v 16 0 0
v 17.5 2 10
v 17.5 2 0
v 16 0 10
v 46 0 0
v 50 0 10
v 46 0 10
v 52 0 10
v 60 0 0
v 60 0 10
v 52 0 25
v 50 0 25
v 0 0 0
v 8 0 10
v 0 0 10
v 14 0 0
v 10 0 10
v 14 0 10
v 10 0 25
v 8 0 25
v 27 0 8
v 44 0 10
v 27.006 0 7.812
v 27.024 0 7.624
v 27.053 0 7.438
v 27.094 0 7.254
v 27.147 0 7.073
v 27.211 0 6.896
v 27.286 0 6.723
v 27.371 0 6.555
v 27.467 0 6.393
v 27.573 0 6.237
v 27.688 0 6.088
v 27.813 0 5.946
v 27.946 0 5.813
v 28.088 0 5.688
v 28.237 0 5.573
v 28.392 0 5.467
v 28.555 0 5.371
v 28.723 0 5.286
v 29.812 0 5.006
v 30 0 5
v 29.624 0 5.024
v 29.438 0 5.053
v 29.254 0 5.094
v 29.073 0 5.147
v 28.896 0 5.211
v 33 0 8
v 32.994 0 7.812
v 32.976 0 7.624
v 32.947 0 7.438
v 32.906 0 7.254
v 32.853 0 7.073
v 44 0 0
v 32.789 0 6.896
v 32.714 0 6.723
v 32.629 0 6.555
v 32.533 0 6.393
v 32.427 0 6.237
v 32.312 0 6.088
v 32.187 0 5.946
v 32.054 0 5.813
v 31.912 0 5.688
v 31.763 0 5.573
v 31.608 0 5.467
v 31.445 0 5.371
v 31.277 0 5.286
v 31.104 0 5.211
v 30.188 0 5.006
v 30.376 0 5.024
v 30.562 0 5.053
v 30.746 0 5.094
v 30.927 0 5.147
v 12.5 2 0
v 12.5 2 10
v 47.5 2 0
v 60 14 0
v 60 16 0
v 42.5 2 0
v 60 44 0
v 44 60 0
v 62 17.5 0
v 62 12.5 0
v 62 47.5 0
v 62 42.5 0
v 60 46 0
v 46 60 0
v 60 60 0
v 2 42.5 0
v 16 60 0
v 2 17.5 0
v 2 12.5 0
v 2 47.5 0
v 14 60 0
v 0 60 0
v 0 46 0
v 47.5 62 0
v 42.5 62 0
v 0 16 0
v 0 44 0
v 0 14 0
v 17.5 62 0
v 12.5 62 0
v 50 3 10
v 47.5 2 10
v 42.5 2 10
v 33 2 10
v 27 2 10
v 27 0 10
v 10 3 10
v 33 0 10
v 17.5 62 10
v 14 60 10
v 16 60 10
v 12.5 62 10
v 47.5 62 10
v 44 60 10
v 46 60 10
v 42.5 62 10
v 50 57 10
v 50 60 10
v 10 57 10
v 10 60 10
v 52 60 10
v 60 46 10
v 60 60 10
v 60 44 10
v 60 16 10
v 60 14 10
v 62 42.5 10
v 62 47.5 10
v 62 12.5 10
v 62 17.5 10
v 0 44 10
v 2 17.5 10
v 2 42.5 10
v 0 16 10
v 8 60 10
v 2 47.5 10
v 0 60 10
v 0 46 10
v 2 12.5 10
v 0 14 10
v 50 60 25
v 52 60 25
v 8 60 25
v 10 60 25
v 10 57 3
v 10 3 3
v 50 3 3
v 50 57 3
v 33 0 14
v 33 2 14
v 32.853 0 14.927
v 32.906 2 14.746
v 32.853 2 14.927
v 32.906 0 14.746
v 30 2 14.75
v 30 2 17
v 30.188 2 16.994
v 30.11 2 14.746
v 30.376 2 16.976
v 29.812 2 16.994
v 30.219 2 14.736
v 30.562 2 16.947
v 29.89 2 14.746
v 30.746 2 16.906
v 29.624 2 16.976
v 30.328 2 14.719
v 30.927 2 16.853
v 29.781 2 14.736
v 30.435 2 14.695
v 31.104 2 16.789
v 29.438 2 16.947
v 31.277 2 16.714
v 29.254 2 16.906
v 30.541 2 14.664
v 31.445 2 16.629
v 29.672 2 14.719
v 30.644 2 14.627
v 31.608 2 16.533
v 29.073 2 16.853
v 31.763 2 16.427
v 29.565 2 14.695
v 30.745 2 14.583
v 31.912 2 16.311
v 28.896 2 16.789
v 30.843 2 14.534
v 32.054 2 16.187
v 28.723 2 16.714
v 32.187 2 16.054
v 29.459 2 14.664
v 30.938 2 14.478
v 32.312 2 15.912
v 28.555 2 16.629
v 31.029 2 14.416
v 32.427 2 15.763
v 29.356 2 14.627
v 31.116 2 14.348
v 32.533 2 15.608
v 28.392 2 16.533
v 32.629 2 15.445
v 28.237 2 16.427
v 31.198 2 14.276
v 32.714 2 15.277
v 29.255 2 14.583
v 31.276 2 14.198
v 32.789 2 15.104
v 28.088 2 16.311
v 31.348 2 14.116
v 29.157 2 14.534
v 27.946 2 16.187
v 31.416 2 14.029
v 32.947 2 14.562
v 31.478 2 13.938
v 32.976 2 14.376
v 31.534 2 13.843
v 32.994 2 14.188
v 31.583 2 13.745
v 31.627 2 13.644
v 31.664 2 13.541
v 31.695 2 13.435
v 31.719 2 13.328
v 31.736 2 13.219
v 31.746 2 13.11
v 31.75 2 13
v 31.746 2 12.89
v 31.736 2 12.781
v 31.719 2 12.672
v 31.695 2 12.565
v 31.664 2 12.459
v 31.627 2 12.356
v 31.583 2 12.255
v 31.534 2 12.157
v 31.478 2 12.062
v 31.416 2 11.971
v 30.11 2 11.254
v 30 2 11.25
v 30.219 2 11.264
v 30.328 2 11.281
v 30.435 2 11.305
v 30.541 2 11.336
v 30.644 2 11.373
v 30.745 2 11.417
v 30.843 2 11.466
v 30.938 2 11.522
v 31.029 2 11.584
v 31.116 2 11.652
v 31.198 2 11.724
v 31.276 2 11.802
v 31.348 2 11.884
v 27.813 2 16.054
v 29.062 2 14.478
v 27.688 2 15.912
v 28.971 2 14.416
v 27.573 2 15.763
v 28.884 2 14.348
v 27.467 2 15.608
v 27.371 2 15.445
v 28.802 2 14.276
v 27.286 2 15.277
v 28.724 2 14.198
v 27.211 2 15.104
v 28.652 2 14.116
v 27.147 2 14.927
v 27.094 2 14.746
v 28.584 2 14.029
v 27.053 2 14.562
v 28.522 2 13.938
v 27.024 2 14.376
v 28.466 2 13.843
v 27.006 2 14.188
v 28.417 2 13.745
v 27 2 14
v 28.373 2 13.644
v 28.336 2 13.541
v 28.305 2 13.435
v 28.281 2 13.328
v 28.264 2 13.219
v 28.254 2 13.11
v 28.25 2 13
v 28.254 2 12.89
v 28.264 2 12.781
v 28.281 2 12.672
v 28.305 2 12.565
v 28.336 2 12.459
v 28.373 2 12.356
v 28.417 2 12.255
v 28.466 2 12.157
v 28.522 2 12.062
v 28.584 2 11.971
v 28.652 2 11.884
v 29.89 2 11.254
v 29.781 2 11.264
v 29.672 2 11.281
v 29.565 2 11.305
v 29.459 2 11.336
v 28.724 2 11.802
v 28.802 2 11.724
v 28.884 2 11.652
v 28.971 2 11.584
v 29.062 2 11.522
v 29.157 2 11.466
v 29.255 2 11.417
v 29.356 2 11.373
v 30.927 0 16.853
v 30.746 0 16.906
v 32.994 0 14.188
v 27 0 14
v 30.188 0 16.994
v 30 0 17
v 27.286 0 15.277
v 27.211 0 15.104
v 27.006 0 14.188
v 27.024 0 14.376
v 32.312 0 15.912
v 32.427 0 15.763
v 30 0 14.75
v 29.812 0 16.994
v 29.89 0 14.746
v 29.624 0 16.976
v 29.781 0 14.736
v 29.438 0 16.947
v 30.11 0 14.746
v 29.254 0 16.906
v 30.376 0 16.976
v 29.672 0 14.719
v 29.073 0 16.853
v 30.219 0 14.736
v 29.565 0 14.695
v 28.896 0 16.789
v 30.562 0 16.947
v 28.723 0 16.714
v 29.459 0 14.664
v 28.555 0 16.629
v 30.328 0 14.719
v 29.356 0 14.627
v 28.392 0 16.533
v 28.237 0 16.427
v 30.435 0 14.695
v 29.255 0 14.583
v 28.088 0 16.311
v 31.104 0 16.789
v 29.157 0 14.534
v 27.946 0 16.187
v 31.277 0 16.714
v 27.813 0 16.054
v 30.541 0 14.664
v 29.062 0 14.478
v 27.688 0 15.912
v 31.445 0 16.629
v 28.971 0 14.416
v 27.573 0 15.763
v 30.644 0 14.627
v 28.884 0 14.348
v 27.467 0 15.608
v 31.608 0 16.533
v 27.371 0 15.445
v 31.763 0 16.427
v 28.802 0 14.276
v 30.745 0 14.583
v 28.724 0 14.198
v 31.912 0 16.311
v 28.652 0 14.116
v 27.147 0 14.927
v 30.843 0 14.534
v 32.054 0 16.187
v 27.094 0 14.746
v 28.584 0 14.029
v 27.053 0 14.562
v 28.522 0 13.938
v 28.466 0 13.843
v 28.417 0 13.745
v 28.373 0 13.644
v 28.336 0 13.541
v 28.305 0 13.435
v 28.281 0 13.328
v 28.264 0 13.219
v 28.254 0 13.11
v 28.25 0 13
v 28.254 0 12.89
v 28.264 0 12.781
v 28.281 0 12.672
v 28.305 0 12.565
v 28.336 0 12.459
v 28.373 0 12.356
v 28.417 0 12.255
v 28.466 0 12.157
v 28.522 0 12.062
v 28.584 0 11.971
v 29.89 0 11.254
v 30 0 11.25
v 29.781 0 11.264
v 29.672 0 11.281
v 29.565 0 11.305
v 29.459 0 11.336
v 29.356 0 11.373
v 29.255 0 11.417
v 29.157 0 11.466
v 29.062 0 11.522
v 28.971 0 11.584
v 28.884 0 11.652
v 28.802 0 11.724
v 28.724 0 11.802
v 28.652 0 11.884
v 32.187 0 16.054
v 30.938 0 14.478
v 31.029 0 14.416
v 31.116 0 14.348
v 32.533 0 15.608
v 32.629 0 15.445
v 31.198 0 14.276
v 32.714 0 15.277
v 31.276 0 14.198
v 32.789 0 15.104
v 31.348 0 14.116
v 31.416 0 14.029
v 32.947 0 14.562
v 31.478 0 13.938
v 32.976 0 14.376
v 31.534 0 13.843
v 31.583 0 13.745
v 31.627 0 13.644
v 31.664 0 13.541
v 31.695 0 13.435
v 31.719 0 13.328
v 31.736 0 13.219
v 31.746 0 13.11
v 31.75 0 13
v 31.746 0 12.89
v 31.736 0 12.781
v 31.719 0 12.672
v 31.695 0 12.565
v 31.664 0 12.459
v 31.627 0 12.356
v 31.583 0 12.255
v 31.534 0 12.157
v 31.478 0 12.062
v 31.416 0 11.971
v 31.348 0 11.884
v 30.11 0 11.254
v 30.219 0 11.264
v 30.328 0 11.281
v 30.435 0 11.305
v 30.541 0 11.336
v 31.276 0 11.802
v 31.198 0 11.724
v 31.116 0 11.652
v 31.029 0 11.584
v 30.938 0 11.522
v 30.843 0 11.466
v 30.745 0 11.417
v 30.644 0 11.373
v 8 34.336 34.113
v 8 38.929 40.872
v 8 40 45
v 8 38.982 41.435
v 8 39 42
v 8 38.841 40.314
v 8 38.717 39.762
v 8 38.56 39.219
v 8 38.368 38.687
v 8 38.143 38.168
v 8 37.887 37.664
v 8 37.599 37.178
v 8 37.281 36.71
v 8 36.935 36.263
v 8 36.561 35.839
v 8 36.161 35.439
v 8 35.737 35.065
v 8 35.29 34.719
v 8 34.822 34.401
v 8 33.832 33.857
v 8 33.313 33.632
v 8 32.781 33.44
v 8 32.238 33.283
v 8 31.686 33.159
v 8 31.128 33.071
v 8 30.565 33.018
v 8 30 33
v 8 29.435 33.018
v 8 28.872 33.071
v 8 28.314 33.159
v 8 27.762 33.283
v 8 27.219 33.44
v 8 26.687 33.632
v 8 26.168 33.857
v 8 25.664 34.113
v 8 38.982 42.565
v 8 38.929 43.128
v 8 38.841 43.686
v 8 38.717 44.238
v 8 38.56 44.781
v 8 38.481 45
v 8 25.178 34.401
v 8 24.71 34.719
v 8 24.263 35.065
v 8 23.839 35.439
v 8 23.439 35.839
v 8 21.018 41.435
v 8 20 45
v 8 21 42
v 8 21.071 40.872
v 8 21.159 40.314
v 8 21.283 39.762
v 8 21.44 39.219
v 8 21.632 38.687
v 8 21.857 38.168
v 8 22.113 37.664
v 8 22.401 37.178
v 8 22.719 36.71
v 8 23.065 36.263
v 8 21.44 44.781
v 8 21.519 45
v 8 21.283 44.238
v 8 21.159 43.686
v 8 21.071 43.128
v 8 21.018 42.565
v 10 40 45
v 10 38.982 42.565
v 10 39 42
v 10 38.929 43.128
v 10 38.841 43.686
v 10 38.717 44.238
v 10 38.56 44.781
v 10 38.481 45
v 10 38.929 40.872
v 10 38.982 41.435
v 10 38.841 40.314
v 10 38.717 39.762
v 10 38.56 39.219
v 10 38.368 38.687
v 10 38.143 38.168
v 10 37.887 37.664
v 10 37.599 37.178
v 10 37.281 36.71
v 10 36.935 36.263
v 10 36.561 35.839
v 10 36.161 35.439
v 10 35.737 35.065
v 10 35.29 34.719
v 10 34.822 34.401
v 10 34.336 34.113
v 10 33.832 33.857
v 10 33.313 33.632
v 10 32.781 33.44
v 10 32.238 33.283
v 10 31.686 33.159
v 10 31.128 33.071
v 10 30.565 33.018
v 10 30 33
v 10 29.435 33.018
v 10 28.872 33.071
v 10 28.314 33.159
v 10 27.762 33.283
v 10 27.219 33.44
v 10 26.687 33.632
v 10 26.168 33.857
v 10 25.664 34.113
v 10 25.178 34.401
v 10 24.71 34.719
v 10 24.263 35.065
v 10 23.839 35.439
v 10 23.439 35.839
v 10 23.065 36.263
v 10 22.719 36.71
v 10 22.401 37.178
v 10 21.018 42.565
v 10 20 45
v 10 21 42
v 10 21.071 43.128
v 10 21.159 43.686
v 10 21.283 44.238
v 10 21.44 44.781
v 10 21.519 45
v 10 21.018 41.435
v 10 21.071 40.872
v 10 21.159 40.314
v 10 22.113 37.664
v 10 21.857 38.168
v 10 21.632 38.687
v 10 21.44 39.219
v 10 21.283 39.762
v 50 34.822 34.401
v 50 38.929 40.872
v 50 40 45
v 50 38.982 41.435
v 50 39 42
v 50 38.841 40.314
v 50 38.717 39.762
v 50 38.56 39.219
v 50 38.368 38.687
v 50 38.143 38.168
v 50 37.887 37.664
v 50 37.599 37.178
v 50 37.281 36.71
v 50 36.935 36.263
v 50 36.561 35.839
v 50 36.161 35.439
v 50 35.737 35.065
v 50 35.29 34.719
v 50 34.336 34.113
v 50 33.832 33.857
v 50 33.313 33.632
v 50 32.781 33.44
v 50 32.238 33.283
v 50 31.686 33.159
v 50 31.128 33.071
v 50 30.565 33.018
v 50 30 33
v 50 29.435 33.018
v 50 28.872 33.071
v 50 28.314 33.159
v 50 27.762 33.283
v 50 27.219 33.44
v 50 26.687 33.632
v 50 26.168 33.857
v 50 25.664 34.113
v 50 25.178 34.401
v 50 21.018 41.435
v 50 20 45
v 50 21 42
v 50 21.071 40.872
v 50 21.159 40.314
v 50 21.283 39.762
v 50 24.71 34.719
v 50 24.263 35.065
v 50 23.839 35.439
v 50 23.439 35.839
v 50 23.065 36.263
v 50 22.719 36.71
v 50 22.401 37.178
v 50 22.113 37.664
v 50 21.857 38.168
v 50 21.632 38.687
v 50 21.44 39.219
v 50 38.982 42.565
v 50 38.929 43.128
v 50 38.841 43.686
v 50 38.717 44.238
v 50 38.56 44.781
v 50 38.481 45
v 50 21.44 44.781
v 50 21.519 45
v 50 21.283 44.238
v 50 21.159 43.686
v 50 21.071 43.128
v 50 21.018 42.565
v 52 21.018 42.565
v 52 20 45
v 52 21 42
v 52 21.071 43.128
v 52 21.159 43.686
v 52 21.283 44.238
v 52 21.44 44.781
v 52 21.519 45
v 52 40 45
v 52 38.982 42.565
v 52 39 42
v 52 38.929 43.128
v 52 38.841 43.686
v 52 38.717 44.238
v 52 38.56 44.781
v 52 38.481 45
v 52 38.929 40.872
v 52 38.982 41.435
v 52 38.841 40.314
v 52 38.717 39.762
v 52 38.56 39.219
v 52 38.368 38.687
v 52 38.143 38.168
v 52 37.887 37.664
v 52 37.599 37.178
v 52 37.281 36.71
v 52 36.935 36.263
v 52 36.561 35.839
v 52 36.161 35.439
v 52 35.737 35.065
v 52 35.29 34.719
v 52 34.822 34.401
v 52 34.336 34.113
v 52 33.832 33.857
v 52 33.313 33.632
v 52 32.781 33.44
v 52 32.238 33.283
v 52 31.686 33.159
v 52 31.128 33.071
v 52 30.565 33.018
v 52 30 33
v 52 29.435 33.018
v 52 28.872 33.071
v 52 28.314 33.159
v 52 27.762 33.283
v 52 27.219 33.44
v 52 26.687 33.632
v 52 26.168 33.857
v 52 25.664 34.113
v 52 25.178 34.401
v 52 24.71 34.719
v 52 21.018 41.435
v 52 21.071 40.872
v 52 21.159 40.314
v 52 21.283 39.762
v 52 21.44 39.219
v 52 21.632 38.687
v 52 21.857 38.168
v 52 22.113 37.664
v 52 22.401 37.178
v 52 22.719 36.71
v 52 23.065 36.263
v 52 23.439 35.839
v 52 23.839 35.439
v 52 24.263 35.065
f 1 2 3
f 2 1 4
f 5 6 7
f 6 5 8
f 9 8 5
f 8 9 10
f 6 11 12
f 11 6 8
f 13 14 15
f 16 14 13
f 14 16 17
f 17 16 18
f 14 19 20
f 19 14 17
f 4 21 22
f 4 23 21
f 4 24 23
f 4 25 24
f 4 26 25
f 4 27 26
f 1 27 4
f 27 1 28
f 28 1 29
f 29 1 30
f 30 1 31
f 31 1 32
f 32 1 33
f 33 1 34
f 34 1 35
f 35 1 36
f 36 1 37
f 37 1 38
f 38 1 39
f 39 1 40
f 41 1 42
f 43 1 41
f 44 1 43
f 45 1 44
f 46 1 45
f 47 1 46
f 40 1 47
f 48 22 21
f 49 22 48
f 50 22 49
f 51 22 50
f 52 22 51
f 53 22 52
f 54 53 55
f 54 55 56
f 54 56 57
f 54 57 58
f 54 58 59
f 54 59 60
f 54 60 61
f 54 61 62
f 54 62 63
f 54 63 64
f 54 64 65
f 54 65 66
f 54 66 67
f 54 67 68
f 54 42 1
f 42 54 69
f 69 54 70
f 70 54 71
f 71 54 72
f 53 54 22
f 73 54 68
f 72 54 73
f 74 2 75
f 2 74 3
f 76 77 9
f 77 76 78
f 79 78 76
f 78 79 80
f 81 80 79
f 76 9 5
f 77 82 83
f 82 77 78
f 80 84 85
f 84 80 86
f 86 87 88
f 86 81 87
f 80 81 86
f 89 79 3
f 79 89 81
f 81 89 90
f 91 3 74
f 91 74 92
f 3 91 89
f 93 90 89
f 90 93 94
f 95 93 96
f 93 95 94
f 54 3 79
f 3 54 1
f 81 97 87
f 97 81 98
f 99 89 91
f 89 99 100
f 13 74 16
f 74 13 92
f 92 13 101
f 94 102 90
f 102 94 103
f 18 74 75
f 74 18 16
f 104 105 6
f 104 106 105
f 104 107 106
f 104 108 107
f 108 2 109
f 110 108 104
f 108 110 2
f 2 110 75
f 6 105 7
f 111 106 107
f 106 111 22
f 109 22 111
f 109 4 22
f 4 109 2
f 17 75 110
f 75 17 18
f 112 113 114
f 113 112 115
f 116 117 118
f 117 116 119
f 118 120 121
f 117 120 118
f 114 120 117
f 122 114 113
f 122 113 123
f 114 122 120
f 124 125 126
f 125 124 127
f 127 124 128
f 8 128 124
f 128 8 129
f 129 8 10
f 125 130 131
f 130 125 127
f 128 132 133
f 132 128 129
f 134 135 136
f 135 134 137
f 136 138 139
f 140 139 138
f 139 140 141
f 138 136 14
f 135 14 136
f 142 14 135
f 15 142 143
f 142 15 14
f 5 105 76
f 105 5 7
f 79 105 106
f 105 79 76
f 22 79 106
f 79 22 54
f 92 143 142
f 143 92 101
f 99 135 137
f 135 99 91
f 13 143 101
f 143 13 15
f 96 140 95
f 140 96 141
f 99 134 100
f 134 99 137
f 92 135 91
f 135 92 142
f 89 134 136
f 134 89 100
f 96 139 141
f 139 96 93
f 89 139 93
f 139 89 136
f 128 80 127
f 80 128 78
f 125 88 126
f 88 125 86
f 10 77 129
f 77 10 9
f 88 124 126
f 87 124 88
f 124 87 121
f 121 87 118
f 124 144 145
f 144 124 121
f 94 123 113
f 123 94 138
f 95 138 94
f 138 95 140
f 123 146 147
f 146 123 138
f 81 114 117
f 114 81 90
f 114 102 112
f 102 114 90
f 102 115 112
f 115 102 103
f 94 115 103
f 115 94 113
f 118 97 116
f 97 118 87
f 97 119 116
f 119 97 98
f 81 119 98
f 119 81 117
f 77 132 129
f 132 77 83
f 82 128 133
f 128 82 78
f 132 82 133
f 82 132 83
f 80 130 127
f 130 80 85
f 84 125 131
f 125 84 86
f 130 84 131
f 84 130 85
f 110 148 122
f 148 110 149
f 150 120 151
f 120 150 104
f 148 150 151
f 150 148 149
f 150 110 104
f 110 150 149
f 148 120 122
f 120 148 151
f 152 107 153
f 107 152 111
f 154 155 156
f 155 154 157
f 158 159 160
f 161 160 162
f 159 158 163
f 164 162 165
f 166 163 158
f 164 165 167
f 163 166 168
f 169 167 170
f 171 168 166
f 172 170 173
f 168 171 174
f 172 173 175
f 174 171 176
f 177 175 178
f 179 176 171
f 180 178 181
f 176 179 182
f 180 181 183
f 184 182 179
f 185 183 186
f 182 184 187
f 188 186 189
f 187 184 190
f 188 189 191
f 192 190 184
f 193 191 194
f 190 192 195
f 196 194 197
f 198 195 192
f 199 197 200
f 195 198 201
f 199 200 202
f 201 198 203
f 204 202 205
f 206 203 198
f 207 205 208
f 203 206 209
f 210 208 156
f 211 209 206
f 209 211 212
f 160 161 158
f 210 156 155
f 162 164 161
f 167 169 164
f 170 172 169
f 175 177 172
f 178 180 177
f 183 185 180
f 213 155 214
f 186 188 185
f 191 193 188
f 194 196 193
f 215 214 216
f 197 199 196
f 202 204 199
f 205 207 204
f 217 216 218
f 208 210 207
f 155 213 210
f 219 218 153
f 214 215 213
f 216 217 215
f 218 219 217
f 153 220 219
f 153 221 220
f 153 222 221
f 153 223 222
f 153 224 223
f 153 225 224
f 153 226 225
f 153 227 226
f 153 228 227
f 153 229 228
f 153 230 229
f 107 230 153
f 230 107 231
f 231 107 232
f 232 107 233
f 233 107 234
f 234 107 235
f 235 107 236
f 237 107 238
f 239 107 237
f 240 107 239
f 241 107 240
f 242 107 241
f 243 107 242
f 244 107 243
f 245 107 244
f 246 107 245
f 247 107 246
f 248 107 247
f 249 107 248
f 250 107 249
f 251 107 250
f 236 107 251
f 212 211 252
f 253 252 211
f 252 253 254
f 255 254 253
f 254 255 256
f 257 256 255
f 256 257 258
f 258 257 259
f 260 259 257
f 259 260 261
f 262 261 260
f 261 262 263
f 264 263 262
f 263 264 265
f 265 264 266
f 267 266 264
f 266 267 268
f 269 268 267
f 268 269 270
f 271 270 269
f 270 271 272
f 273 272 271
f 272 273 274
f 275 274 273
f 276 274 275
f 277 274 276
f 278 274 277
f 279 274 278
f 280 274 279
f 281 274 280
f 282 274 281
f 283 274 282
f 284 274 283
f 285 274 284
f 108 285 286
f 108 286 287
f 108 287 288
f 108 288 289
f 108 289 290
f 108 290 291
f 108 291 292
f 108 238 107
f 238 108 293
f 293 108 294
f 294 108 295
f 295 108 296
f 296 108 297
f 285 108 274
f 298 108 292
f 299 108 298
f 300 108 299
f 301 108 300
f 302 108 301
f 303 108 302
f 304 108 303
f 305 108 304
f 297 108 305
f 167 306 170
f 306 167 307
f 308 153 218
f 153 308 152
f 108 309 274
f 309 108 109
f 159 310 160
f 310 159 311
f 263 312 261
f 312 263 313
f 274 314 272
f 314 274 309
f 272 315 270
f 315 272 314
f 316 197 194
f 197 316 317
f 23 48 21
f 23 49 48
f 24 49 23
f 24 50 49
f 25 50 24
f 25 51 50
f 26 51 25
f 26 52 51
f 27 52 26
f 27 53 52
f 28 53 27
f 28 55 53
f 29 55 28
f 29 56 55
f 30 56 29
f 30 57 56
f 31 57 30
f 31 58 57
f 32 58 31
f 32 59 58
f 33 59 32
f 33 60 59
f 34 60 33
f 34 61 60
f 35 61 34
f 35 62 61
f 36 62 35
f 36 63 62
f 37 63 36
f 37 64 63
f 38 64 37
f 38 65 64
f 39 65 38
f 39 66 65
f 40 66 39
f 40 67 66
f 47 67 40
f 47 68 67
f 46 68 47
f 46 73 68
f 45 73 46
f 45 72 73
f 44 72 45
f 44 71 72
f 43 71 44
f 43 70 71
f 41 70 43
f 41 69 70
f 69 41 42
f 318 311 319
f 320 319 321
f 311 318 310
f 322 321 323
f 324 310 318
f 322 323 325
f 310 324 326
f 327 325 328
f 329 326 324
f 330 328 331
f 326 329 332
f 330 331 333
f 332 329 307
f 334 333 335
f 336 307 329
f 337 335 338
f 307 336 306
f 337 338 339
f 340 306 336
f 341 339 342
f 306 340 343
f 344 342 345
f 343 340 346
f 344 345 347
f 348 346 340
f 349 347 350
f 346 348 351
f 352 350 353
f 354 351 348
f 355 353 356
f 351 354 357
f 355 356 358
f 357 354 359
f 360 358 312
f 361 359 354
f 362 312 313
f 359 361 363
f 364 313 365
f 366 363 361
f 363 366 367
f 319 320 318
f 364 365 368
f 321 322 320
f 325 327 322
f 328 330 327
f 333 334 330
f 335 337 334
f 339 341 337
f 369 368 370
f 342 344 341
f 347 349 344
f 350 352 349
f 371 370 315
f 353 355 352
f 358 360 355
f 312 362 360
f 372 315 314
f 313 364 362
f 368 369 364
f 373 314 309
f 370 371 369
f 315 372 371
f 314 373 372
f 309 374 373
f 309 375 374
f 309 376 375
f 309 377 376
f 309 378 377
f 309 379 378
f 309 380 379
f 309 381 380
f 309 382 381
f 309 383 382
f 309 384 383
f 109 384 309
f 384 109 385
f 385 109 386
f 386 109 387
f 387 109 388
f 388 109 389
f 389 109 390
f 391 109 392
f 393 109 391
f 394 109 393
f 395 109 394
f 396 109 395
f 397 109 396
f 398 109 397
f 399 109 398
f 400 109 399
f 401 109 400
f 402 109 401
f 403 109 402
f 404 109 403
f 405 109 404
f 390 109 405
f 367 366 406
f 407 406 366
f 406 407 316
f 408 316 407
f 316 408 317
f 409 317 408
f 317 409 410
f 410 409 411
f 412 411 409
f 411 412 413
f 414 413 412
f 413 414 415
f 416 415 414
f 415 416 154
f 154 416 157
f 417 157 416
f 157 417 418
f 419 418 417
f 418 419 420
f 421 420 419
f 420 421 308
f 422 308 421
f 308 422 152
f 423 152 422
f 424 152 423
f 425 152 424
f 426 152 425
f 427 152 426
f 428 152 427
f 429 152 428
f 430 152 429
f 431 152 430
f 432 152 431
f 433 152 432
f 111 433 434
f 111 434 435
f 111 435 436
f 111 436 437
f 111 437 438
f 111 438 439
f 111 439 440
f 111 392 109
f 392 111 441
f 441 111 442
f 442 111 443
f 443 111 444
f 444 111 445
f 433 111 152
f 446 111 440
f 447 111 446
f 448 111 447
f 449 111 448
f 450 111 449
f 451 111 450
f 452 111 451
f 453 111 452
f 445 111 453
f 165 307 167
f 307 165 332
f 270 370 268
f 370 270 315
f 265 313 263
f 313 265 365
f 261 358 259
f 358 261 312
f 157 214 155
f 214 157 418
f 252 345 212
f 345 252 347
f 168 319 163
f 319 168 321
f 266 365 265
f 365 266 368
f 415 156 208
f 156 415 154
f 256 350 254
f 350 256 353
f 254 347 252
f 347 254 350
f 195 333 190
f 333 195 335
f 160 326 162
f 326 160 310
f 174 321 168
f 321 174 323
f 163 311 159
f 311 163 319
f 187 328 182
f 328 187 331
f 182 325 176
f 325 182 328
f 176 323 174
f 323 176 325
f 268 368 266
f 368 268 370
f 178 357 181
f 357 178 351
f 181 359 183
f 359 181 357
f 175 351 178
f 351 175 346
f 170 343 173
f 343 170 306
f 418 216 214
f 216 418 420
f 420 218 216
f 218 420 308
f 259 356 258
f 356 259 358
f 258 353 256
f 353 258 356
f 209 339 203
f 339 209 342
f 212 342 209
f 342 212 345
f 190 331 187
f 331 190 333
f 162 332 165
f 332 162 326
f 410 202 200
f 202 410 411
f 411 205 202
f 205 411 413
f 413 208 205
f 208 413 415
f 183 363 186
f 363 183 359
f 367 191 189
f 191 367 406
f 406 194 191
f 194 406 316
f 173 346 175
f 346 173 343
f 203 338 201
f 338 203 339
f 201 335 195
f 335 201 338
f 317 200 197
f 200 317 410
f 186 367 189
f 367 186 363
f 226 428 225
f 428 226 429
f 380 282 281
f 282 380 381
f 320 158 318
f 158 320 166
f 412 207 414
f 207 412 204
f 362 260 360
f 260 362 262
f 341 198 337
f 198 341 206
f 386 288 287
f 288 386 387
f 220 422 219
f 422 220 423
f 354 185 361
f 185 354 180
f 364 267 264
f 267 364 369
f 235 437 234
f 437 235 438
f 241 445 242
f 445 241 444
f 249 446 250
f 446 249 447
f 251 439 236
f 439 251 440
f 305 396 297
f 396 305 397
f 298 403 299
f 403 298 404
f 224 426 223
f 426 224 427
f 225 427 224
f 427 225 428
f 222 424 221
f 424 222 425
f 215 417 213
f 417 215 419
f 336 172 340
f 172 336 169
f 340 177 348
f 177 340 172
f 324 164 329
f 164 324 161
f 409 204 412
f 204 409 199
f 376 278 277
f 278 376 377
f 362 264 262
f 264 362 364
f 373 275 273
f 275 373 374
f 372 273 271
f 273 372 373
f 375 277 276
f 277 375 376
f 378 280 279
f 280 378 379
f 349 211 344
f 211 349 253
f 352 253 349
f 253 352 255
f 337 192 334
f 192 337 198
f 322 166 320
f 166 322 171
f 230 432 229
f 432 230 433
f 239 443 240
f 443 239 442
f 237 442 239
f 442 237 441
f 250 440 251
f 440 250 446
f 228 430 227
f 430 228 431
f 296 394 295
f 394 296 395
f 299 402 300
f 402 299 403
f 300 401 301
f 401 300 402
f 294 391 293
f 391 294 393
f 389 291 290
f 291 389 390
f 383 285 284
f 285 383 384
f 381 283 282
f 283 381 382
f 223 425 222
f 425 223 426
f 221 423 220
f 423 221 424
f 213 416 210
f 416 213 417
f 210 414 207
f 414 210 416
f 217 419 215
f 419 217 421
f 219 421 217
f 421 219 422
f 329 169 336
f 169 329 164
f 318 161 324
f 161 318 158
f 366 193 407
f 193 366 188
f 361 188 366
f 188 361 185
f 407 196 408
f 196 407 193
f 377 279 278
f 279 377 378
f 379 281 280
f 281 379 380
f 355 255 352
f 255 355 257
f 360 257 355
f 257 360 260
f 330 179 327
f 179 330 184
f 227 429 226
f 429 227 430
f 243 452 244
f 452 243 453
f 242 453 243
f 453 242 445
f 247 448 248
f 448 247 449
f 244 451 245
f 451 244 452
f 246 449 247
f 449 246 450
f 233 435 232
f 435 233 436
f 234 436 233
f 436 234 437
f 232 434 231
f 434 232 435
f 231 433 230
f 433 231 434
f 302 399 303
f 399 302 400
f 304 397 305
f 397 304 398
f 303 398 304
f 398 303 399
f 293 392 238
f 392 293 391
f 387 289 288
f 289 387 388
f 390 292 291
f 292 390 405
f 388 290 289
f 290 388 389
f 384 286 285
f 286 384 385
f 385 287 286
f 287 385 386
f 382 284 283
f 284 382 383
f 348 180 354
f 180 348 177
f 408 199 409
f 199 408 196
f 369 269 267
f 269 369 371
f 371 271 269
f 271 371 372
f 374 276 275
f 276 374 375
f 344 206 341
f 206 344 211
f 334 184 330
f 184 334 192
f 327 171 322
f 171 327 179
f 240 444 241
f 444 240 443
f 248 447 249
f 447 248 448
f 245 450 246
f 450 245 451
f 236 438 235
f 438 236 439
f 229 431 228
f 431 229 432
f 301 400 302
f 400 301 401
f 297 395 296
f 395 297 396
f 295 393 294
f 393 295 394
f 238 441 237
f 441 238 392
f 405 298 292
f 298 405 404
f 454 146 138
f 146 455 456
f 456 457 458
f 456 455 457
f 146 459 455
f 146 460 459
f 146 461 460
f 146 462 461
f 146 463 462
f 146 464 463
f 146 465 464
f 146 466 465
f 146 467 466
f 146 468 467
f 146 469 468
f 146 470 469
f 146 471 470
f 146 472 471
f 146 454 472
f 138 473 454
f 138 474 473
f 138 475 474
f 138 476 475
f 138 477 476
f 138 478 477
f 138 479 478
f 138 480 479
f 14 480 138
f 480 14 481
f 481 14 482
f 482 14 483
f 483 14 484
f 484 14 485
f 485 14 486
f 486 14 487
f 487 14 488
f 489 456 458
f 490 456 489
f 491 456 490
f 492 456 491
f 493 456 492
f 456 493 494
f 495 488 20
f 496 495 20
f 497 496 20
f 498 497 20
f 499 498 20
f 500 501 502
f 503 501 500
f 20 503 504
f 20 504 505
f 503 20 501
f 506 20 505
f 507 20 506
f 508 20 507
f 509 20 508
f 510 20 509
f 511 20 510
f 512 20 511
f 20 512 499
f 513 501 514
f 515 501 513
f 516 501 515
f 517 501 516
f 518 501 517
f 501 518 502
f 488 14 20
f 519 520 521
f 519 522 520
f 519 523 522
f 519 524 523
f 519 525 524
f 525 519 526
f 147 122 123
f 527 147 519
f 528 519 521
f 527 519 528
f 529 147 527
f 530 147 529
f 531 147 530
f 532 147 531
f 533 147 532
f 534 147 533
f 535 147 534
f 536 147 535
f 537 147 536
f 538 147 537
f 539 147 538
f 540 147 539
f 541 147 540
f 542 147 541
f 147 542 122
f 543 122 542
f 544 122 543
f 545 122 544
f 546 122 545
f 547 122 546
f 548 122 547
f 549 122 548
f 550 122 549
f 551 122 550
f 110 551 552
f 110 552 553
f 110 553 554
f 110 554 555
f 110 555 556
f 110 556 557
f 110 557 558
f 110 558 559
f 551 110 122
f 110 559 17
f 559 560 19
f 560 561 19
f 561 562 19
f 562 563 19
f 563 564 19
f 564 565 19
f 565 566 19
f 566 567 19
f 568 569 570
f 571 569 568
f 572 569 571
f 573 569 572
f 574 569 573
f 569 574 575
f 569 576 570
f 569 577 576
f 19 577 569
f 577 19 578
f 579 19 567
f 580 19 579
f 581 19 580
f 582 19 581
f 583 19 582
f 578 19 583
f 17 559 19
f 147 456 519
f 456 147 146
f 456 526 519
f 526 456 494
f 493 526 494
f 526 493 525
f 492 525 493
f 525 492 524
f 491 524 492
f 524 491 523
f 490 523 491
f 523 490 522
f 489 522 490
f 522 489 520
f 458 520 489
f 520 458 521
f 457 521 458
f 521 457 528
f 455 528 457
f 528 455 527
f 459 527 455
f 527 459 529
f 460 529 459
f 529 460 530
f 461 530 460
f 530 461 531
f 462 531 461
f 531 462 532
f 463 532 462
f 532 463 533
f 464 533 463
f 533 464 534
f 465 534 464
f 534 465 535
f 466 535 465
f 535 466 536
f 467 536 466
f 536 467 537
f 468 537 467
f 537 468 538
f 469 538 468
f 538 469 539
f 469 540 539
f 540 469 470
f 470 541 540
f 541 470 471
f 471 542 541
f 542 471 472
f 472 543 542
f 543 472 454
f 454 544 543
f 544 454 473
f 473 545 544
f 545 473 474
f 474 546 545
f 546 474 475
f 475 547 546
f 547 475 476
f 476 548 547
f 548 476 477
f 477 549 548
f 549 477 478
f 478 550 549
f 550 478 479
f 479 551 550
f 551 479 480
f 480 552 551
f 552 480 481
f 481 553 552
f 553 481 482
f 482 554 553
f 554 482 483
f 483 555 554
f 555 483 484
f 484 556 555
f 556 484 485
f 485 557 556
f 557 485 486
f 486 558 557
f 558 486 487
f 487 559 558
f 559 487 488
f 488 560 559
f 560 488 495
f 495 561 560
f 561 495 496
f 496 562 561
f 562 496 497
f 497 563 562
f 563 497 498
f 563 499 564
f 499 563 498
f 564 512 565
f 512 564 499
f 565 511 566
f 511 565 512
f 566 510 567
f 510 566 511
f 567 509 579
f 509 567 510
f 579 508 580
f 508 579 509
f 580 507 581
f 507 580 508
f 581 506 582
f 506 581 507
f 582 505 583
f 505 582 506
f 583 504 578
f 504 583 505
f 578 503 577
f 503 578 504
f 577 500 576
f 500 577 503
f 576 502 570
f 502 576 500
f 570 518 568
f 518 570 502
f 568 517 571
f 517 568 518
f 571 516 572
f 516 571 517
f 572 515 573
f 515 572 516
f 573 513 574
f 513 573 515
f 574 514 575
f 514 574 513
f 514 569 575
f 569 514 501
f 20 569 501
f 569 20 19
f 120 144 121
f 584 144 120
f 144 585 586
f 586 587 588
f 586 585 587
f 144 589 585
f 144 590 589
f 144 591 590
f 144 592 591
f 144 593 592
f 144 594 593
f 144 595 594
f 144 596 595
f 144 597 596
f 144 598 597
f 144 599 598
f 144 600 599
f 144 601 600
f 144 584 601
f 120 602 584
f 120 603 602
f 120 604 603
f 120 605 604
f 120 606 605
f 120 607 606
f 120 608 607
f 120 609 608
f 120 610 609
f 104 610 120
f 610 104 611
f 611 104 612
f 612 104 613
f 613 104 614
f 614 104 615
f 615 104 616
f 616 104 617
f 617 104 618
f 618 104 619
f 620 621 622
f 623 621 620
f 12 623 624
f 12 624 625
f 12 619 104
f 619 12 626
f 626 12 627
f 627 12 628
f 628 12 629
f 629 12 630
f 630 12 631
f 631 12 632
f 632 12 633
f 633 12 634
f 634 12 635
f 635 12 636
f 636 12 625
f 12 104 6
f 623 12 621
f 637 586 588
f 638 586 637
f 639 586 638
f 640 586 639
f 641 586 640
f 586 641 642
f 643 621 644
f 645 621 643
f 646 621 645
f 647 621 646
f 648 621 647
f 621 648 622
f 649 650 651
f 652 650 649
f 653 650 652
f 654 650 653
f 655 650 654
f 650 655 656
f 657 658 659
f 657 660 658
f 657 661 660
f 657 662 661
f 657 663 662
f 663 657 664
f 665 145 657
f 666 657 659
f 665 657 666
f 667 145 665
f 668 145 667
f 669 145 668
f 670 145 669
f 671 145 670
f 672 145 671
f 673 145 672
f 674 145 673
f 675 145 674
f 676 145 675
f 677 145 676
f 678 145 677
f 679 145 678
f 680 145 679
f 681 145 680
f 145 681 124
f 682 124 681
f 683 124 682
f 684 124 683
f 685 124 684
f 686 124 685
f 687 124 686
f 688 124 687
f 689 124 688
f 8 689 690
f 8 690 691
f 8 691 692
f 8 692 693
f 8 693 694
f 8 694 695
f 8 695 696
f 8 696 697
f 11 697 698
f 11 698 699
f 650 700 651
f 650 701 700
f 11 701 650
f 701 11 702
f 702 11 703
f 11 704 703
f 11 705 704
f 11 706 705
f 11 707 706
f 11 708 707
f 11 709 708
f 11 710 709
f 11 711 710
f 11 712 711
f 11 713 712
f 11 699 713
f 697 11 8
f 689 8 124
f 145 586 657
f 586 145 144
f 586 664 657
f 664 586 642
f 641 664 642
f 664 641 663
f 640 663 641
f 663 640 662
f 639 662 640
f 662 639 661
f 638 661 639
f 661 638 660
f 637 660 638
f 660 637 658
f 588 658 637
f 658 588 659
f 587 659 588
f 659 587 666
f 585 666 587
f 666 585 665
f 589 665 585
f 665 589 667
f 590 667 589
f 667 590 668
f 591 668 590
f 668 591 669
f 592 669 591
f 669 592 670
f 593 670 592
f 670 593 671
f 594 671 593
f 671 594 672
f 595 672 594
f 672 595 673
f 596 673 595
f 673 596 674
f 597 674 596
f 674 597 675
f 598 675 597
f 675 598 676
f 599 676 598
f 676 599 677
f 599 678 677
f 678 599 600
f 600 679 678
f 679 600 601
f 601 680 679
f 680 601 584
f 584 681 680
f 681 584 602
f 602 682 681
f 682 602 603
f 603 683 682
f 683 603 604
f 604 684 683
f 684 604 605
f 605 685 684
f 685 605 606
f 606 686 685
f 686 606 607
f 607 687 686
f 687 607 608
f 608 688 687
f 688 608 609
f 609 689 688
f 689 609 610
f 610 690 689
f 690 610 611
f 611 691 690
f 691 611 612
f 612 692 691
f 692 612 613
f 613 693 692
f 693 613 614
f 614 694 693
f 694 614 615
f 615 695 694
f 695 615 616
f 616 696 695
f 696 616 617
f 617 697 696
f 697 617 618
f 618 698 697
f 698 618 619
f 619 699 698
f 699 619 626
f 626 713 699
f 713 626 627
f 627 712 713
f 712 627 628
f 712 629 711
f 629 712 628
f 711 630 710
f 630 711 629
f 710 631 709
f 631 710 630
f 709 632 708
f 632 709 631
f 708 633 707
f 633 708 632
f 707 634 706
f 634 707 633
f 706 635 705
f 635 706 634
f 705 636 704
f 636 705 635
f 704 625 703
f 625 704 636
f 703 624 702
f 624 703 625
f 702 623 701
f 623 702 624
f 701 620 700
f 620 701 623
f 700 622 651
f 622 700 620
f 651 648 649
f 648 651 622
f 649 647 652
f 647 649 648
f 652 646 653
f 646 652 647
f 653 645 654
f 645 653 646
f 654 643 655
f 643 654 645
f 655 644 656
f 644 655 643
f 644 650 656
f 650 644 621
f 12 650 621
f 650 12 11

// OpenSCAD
// file: solder_stuff_station.scad
$fn = 100;

small_block_width = 30;
small_block_length = 30;

module connector() {
     linear_extrude(10) {
          polygon([[0, 0], [5, 0], [3.5, 2], [1.5, 2]]);
     }
}

module Block(width, length, height, with_right, with_left, with_up, with_down) {

     difference() {
          cube([width, length, height]);
          //nut
          if(with_down) translate([(width/2) + 2.5, 2, 0]) rotate([0, 0, 180]) connector();
          if(with_left) translate([2, (length/2) - 2.5, 0]) rotate([0, 0, 90]) connector();
     }

     //feather
     if(with_up) translate([(width/2) + 2.5, length + 2, 0]) rotate([0, 0, 180]) connector();
     if(with_right) translate([width + 2, (length/2) - 2.5, 0]) rotate([0, 0, 90]) connector();
}

module SmallBlock(height, with_right=true, with_left=true, with_up=true, with_down=true) {
     Block(small_block_width, small_block_length, height, with_right, with_left, with_up, with_down);
}

module GreatBlock(height) {
     SmallBlock(height, with_right=false, with_up=false);
     translate([small_block_width, 0, 0]) SmallBlock(height, with_left=false, with_up=false);
     translate([small_block_width, small_block_length, 0]) SmallBlock(height, with_left=false, with_down=false);
     translate([0, small_block_length, 0]) SmallBlock(height, with_down=false, with_right=false);
}
// main file
include <solder_stuff_station.scad>;

module solderTinHolderSide() {
     rotate([90, 0, 90]) {
          linear_extrude(2) {
               translate([0, 15]) {
                    difference() {
                         polygon([[0, 0], [small_block_length * 2, 0], [(small_block_length * 2) - 20, 20], [20, 20]]);
                         translate([small_block_length, 17]) circle(d=18, center=true);
                    }
               }
               square([small_block_length * 2, 15]);
          }
     }
}

module SolderTinHolder() {
     difference() {
          GreatBlock(10);
          translate([10, 3, 3]) cube([40, (small_block_length * 2) - 6, 8]);
     } 

     translate([8, 0, 10]) solderTinHolderSide();
     translate([(small_block_width * 2) - 10, 0, 10]) solderTinHolderSide();

     translate([small_block_width, 2, 8]) {
          rotate([90, 0, 0]) {
               difference() {
                    hull() {
                         cylinder(h=2, d=6);
                         translate([0, 6, 0]) cylinder(h=2, d=6);
                    }
                    translate([0, 5, 0]) cylinder(h=2, d=3.5);
               }
          }
     }
}
SolderTinHolder();
